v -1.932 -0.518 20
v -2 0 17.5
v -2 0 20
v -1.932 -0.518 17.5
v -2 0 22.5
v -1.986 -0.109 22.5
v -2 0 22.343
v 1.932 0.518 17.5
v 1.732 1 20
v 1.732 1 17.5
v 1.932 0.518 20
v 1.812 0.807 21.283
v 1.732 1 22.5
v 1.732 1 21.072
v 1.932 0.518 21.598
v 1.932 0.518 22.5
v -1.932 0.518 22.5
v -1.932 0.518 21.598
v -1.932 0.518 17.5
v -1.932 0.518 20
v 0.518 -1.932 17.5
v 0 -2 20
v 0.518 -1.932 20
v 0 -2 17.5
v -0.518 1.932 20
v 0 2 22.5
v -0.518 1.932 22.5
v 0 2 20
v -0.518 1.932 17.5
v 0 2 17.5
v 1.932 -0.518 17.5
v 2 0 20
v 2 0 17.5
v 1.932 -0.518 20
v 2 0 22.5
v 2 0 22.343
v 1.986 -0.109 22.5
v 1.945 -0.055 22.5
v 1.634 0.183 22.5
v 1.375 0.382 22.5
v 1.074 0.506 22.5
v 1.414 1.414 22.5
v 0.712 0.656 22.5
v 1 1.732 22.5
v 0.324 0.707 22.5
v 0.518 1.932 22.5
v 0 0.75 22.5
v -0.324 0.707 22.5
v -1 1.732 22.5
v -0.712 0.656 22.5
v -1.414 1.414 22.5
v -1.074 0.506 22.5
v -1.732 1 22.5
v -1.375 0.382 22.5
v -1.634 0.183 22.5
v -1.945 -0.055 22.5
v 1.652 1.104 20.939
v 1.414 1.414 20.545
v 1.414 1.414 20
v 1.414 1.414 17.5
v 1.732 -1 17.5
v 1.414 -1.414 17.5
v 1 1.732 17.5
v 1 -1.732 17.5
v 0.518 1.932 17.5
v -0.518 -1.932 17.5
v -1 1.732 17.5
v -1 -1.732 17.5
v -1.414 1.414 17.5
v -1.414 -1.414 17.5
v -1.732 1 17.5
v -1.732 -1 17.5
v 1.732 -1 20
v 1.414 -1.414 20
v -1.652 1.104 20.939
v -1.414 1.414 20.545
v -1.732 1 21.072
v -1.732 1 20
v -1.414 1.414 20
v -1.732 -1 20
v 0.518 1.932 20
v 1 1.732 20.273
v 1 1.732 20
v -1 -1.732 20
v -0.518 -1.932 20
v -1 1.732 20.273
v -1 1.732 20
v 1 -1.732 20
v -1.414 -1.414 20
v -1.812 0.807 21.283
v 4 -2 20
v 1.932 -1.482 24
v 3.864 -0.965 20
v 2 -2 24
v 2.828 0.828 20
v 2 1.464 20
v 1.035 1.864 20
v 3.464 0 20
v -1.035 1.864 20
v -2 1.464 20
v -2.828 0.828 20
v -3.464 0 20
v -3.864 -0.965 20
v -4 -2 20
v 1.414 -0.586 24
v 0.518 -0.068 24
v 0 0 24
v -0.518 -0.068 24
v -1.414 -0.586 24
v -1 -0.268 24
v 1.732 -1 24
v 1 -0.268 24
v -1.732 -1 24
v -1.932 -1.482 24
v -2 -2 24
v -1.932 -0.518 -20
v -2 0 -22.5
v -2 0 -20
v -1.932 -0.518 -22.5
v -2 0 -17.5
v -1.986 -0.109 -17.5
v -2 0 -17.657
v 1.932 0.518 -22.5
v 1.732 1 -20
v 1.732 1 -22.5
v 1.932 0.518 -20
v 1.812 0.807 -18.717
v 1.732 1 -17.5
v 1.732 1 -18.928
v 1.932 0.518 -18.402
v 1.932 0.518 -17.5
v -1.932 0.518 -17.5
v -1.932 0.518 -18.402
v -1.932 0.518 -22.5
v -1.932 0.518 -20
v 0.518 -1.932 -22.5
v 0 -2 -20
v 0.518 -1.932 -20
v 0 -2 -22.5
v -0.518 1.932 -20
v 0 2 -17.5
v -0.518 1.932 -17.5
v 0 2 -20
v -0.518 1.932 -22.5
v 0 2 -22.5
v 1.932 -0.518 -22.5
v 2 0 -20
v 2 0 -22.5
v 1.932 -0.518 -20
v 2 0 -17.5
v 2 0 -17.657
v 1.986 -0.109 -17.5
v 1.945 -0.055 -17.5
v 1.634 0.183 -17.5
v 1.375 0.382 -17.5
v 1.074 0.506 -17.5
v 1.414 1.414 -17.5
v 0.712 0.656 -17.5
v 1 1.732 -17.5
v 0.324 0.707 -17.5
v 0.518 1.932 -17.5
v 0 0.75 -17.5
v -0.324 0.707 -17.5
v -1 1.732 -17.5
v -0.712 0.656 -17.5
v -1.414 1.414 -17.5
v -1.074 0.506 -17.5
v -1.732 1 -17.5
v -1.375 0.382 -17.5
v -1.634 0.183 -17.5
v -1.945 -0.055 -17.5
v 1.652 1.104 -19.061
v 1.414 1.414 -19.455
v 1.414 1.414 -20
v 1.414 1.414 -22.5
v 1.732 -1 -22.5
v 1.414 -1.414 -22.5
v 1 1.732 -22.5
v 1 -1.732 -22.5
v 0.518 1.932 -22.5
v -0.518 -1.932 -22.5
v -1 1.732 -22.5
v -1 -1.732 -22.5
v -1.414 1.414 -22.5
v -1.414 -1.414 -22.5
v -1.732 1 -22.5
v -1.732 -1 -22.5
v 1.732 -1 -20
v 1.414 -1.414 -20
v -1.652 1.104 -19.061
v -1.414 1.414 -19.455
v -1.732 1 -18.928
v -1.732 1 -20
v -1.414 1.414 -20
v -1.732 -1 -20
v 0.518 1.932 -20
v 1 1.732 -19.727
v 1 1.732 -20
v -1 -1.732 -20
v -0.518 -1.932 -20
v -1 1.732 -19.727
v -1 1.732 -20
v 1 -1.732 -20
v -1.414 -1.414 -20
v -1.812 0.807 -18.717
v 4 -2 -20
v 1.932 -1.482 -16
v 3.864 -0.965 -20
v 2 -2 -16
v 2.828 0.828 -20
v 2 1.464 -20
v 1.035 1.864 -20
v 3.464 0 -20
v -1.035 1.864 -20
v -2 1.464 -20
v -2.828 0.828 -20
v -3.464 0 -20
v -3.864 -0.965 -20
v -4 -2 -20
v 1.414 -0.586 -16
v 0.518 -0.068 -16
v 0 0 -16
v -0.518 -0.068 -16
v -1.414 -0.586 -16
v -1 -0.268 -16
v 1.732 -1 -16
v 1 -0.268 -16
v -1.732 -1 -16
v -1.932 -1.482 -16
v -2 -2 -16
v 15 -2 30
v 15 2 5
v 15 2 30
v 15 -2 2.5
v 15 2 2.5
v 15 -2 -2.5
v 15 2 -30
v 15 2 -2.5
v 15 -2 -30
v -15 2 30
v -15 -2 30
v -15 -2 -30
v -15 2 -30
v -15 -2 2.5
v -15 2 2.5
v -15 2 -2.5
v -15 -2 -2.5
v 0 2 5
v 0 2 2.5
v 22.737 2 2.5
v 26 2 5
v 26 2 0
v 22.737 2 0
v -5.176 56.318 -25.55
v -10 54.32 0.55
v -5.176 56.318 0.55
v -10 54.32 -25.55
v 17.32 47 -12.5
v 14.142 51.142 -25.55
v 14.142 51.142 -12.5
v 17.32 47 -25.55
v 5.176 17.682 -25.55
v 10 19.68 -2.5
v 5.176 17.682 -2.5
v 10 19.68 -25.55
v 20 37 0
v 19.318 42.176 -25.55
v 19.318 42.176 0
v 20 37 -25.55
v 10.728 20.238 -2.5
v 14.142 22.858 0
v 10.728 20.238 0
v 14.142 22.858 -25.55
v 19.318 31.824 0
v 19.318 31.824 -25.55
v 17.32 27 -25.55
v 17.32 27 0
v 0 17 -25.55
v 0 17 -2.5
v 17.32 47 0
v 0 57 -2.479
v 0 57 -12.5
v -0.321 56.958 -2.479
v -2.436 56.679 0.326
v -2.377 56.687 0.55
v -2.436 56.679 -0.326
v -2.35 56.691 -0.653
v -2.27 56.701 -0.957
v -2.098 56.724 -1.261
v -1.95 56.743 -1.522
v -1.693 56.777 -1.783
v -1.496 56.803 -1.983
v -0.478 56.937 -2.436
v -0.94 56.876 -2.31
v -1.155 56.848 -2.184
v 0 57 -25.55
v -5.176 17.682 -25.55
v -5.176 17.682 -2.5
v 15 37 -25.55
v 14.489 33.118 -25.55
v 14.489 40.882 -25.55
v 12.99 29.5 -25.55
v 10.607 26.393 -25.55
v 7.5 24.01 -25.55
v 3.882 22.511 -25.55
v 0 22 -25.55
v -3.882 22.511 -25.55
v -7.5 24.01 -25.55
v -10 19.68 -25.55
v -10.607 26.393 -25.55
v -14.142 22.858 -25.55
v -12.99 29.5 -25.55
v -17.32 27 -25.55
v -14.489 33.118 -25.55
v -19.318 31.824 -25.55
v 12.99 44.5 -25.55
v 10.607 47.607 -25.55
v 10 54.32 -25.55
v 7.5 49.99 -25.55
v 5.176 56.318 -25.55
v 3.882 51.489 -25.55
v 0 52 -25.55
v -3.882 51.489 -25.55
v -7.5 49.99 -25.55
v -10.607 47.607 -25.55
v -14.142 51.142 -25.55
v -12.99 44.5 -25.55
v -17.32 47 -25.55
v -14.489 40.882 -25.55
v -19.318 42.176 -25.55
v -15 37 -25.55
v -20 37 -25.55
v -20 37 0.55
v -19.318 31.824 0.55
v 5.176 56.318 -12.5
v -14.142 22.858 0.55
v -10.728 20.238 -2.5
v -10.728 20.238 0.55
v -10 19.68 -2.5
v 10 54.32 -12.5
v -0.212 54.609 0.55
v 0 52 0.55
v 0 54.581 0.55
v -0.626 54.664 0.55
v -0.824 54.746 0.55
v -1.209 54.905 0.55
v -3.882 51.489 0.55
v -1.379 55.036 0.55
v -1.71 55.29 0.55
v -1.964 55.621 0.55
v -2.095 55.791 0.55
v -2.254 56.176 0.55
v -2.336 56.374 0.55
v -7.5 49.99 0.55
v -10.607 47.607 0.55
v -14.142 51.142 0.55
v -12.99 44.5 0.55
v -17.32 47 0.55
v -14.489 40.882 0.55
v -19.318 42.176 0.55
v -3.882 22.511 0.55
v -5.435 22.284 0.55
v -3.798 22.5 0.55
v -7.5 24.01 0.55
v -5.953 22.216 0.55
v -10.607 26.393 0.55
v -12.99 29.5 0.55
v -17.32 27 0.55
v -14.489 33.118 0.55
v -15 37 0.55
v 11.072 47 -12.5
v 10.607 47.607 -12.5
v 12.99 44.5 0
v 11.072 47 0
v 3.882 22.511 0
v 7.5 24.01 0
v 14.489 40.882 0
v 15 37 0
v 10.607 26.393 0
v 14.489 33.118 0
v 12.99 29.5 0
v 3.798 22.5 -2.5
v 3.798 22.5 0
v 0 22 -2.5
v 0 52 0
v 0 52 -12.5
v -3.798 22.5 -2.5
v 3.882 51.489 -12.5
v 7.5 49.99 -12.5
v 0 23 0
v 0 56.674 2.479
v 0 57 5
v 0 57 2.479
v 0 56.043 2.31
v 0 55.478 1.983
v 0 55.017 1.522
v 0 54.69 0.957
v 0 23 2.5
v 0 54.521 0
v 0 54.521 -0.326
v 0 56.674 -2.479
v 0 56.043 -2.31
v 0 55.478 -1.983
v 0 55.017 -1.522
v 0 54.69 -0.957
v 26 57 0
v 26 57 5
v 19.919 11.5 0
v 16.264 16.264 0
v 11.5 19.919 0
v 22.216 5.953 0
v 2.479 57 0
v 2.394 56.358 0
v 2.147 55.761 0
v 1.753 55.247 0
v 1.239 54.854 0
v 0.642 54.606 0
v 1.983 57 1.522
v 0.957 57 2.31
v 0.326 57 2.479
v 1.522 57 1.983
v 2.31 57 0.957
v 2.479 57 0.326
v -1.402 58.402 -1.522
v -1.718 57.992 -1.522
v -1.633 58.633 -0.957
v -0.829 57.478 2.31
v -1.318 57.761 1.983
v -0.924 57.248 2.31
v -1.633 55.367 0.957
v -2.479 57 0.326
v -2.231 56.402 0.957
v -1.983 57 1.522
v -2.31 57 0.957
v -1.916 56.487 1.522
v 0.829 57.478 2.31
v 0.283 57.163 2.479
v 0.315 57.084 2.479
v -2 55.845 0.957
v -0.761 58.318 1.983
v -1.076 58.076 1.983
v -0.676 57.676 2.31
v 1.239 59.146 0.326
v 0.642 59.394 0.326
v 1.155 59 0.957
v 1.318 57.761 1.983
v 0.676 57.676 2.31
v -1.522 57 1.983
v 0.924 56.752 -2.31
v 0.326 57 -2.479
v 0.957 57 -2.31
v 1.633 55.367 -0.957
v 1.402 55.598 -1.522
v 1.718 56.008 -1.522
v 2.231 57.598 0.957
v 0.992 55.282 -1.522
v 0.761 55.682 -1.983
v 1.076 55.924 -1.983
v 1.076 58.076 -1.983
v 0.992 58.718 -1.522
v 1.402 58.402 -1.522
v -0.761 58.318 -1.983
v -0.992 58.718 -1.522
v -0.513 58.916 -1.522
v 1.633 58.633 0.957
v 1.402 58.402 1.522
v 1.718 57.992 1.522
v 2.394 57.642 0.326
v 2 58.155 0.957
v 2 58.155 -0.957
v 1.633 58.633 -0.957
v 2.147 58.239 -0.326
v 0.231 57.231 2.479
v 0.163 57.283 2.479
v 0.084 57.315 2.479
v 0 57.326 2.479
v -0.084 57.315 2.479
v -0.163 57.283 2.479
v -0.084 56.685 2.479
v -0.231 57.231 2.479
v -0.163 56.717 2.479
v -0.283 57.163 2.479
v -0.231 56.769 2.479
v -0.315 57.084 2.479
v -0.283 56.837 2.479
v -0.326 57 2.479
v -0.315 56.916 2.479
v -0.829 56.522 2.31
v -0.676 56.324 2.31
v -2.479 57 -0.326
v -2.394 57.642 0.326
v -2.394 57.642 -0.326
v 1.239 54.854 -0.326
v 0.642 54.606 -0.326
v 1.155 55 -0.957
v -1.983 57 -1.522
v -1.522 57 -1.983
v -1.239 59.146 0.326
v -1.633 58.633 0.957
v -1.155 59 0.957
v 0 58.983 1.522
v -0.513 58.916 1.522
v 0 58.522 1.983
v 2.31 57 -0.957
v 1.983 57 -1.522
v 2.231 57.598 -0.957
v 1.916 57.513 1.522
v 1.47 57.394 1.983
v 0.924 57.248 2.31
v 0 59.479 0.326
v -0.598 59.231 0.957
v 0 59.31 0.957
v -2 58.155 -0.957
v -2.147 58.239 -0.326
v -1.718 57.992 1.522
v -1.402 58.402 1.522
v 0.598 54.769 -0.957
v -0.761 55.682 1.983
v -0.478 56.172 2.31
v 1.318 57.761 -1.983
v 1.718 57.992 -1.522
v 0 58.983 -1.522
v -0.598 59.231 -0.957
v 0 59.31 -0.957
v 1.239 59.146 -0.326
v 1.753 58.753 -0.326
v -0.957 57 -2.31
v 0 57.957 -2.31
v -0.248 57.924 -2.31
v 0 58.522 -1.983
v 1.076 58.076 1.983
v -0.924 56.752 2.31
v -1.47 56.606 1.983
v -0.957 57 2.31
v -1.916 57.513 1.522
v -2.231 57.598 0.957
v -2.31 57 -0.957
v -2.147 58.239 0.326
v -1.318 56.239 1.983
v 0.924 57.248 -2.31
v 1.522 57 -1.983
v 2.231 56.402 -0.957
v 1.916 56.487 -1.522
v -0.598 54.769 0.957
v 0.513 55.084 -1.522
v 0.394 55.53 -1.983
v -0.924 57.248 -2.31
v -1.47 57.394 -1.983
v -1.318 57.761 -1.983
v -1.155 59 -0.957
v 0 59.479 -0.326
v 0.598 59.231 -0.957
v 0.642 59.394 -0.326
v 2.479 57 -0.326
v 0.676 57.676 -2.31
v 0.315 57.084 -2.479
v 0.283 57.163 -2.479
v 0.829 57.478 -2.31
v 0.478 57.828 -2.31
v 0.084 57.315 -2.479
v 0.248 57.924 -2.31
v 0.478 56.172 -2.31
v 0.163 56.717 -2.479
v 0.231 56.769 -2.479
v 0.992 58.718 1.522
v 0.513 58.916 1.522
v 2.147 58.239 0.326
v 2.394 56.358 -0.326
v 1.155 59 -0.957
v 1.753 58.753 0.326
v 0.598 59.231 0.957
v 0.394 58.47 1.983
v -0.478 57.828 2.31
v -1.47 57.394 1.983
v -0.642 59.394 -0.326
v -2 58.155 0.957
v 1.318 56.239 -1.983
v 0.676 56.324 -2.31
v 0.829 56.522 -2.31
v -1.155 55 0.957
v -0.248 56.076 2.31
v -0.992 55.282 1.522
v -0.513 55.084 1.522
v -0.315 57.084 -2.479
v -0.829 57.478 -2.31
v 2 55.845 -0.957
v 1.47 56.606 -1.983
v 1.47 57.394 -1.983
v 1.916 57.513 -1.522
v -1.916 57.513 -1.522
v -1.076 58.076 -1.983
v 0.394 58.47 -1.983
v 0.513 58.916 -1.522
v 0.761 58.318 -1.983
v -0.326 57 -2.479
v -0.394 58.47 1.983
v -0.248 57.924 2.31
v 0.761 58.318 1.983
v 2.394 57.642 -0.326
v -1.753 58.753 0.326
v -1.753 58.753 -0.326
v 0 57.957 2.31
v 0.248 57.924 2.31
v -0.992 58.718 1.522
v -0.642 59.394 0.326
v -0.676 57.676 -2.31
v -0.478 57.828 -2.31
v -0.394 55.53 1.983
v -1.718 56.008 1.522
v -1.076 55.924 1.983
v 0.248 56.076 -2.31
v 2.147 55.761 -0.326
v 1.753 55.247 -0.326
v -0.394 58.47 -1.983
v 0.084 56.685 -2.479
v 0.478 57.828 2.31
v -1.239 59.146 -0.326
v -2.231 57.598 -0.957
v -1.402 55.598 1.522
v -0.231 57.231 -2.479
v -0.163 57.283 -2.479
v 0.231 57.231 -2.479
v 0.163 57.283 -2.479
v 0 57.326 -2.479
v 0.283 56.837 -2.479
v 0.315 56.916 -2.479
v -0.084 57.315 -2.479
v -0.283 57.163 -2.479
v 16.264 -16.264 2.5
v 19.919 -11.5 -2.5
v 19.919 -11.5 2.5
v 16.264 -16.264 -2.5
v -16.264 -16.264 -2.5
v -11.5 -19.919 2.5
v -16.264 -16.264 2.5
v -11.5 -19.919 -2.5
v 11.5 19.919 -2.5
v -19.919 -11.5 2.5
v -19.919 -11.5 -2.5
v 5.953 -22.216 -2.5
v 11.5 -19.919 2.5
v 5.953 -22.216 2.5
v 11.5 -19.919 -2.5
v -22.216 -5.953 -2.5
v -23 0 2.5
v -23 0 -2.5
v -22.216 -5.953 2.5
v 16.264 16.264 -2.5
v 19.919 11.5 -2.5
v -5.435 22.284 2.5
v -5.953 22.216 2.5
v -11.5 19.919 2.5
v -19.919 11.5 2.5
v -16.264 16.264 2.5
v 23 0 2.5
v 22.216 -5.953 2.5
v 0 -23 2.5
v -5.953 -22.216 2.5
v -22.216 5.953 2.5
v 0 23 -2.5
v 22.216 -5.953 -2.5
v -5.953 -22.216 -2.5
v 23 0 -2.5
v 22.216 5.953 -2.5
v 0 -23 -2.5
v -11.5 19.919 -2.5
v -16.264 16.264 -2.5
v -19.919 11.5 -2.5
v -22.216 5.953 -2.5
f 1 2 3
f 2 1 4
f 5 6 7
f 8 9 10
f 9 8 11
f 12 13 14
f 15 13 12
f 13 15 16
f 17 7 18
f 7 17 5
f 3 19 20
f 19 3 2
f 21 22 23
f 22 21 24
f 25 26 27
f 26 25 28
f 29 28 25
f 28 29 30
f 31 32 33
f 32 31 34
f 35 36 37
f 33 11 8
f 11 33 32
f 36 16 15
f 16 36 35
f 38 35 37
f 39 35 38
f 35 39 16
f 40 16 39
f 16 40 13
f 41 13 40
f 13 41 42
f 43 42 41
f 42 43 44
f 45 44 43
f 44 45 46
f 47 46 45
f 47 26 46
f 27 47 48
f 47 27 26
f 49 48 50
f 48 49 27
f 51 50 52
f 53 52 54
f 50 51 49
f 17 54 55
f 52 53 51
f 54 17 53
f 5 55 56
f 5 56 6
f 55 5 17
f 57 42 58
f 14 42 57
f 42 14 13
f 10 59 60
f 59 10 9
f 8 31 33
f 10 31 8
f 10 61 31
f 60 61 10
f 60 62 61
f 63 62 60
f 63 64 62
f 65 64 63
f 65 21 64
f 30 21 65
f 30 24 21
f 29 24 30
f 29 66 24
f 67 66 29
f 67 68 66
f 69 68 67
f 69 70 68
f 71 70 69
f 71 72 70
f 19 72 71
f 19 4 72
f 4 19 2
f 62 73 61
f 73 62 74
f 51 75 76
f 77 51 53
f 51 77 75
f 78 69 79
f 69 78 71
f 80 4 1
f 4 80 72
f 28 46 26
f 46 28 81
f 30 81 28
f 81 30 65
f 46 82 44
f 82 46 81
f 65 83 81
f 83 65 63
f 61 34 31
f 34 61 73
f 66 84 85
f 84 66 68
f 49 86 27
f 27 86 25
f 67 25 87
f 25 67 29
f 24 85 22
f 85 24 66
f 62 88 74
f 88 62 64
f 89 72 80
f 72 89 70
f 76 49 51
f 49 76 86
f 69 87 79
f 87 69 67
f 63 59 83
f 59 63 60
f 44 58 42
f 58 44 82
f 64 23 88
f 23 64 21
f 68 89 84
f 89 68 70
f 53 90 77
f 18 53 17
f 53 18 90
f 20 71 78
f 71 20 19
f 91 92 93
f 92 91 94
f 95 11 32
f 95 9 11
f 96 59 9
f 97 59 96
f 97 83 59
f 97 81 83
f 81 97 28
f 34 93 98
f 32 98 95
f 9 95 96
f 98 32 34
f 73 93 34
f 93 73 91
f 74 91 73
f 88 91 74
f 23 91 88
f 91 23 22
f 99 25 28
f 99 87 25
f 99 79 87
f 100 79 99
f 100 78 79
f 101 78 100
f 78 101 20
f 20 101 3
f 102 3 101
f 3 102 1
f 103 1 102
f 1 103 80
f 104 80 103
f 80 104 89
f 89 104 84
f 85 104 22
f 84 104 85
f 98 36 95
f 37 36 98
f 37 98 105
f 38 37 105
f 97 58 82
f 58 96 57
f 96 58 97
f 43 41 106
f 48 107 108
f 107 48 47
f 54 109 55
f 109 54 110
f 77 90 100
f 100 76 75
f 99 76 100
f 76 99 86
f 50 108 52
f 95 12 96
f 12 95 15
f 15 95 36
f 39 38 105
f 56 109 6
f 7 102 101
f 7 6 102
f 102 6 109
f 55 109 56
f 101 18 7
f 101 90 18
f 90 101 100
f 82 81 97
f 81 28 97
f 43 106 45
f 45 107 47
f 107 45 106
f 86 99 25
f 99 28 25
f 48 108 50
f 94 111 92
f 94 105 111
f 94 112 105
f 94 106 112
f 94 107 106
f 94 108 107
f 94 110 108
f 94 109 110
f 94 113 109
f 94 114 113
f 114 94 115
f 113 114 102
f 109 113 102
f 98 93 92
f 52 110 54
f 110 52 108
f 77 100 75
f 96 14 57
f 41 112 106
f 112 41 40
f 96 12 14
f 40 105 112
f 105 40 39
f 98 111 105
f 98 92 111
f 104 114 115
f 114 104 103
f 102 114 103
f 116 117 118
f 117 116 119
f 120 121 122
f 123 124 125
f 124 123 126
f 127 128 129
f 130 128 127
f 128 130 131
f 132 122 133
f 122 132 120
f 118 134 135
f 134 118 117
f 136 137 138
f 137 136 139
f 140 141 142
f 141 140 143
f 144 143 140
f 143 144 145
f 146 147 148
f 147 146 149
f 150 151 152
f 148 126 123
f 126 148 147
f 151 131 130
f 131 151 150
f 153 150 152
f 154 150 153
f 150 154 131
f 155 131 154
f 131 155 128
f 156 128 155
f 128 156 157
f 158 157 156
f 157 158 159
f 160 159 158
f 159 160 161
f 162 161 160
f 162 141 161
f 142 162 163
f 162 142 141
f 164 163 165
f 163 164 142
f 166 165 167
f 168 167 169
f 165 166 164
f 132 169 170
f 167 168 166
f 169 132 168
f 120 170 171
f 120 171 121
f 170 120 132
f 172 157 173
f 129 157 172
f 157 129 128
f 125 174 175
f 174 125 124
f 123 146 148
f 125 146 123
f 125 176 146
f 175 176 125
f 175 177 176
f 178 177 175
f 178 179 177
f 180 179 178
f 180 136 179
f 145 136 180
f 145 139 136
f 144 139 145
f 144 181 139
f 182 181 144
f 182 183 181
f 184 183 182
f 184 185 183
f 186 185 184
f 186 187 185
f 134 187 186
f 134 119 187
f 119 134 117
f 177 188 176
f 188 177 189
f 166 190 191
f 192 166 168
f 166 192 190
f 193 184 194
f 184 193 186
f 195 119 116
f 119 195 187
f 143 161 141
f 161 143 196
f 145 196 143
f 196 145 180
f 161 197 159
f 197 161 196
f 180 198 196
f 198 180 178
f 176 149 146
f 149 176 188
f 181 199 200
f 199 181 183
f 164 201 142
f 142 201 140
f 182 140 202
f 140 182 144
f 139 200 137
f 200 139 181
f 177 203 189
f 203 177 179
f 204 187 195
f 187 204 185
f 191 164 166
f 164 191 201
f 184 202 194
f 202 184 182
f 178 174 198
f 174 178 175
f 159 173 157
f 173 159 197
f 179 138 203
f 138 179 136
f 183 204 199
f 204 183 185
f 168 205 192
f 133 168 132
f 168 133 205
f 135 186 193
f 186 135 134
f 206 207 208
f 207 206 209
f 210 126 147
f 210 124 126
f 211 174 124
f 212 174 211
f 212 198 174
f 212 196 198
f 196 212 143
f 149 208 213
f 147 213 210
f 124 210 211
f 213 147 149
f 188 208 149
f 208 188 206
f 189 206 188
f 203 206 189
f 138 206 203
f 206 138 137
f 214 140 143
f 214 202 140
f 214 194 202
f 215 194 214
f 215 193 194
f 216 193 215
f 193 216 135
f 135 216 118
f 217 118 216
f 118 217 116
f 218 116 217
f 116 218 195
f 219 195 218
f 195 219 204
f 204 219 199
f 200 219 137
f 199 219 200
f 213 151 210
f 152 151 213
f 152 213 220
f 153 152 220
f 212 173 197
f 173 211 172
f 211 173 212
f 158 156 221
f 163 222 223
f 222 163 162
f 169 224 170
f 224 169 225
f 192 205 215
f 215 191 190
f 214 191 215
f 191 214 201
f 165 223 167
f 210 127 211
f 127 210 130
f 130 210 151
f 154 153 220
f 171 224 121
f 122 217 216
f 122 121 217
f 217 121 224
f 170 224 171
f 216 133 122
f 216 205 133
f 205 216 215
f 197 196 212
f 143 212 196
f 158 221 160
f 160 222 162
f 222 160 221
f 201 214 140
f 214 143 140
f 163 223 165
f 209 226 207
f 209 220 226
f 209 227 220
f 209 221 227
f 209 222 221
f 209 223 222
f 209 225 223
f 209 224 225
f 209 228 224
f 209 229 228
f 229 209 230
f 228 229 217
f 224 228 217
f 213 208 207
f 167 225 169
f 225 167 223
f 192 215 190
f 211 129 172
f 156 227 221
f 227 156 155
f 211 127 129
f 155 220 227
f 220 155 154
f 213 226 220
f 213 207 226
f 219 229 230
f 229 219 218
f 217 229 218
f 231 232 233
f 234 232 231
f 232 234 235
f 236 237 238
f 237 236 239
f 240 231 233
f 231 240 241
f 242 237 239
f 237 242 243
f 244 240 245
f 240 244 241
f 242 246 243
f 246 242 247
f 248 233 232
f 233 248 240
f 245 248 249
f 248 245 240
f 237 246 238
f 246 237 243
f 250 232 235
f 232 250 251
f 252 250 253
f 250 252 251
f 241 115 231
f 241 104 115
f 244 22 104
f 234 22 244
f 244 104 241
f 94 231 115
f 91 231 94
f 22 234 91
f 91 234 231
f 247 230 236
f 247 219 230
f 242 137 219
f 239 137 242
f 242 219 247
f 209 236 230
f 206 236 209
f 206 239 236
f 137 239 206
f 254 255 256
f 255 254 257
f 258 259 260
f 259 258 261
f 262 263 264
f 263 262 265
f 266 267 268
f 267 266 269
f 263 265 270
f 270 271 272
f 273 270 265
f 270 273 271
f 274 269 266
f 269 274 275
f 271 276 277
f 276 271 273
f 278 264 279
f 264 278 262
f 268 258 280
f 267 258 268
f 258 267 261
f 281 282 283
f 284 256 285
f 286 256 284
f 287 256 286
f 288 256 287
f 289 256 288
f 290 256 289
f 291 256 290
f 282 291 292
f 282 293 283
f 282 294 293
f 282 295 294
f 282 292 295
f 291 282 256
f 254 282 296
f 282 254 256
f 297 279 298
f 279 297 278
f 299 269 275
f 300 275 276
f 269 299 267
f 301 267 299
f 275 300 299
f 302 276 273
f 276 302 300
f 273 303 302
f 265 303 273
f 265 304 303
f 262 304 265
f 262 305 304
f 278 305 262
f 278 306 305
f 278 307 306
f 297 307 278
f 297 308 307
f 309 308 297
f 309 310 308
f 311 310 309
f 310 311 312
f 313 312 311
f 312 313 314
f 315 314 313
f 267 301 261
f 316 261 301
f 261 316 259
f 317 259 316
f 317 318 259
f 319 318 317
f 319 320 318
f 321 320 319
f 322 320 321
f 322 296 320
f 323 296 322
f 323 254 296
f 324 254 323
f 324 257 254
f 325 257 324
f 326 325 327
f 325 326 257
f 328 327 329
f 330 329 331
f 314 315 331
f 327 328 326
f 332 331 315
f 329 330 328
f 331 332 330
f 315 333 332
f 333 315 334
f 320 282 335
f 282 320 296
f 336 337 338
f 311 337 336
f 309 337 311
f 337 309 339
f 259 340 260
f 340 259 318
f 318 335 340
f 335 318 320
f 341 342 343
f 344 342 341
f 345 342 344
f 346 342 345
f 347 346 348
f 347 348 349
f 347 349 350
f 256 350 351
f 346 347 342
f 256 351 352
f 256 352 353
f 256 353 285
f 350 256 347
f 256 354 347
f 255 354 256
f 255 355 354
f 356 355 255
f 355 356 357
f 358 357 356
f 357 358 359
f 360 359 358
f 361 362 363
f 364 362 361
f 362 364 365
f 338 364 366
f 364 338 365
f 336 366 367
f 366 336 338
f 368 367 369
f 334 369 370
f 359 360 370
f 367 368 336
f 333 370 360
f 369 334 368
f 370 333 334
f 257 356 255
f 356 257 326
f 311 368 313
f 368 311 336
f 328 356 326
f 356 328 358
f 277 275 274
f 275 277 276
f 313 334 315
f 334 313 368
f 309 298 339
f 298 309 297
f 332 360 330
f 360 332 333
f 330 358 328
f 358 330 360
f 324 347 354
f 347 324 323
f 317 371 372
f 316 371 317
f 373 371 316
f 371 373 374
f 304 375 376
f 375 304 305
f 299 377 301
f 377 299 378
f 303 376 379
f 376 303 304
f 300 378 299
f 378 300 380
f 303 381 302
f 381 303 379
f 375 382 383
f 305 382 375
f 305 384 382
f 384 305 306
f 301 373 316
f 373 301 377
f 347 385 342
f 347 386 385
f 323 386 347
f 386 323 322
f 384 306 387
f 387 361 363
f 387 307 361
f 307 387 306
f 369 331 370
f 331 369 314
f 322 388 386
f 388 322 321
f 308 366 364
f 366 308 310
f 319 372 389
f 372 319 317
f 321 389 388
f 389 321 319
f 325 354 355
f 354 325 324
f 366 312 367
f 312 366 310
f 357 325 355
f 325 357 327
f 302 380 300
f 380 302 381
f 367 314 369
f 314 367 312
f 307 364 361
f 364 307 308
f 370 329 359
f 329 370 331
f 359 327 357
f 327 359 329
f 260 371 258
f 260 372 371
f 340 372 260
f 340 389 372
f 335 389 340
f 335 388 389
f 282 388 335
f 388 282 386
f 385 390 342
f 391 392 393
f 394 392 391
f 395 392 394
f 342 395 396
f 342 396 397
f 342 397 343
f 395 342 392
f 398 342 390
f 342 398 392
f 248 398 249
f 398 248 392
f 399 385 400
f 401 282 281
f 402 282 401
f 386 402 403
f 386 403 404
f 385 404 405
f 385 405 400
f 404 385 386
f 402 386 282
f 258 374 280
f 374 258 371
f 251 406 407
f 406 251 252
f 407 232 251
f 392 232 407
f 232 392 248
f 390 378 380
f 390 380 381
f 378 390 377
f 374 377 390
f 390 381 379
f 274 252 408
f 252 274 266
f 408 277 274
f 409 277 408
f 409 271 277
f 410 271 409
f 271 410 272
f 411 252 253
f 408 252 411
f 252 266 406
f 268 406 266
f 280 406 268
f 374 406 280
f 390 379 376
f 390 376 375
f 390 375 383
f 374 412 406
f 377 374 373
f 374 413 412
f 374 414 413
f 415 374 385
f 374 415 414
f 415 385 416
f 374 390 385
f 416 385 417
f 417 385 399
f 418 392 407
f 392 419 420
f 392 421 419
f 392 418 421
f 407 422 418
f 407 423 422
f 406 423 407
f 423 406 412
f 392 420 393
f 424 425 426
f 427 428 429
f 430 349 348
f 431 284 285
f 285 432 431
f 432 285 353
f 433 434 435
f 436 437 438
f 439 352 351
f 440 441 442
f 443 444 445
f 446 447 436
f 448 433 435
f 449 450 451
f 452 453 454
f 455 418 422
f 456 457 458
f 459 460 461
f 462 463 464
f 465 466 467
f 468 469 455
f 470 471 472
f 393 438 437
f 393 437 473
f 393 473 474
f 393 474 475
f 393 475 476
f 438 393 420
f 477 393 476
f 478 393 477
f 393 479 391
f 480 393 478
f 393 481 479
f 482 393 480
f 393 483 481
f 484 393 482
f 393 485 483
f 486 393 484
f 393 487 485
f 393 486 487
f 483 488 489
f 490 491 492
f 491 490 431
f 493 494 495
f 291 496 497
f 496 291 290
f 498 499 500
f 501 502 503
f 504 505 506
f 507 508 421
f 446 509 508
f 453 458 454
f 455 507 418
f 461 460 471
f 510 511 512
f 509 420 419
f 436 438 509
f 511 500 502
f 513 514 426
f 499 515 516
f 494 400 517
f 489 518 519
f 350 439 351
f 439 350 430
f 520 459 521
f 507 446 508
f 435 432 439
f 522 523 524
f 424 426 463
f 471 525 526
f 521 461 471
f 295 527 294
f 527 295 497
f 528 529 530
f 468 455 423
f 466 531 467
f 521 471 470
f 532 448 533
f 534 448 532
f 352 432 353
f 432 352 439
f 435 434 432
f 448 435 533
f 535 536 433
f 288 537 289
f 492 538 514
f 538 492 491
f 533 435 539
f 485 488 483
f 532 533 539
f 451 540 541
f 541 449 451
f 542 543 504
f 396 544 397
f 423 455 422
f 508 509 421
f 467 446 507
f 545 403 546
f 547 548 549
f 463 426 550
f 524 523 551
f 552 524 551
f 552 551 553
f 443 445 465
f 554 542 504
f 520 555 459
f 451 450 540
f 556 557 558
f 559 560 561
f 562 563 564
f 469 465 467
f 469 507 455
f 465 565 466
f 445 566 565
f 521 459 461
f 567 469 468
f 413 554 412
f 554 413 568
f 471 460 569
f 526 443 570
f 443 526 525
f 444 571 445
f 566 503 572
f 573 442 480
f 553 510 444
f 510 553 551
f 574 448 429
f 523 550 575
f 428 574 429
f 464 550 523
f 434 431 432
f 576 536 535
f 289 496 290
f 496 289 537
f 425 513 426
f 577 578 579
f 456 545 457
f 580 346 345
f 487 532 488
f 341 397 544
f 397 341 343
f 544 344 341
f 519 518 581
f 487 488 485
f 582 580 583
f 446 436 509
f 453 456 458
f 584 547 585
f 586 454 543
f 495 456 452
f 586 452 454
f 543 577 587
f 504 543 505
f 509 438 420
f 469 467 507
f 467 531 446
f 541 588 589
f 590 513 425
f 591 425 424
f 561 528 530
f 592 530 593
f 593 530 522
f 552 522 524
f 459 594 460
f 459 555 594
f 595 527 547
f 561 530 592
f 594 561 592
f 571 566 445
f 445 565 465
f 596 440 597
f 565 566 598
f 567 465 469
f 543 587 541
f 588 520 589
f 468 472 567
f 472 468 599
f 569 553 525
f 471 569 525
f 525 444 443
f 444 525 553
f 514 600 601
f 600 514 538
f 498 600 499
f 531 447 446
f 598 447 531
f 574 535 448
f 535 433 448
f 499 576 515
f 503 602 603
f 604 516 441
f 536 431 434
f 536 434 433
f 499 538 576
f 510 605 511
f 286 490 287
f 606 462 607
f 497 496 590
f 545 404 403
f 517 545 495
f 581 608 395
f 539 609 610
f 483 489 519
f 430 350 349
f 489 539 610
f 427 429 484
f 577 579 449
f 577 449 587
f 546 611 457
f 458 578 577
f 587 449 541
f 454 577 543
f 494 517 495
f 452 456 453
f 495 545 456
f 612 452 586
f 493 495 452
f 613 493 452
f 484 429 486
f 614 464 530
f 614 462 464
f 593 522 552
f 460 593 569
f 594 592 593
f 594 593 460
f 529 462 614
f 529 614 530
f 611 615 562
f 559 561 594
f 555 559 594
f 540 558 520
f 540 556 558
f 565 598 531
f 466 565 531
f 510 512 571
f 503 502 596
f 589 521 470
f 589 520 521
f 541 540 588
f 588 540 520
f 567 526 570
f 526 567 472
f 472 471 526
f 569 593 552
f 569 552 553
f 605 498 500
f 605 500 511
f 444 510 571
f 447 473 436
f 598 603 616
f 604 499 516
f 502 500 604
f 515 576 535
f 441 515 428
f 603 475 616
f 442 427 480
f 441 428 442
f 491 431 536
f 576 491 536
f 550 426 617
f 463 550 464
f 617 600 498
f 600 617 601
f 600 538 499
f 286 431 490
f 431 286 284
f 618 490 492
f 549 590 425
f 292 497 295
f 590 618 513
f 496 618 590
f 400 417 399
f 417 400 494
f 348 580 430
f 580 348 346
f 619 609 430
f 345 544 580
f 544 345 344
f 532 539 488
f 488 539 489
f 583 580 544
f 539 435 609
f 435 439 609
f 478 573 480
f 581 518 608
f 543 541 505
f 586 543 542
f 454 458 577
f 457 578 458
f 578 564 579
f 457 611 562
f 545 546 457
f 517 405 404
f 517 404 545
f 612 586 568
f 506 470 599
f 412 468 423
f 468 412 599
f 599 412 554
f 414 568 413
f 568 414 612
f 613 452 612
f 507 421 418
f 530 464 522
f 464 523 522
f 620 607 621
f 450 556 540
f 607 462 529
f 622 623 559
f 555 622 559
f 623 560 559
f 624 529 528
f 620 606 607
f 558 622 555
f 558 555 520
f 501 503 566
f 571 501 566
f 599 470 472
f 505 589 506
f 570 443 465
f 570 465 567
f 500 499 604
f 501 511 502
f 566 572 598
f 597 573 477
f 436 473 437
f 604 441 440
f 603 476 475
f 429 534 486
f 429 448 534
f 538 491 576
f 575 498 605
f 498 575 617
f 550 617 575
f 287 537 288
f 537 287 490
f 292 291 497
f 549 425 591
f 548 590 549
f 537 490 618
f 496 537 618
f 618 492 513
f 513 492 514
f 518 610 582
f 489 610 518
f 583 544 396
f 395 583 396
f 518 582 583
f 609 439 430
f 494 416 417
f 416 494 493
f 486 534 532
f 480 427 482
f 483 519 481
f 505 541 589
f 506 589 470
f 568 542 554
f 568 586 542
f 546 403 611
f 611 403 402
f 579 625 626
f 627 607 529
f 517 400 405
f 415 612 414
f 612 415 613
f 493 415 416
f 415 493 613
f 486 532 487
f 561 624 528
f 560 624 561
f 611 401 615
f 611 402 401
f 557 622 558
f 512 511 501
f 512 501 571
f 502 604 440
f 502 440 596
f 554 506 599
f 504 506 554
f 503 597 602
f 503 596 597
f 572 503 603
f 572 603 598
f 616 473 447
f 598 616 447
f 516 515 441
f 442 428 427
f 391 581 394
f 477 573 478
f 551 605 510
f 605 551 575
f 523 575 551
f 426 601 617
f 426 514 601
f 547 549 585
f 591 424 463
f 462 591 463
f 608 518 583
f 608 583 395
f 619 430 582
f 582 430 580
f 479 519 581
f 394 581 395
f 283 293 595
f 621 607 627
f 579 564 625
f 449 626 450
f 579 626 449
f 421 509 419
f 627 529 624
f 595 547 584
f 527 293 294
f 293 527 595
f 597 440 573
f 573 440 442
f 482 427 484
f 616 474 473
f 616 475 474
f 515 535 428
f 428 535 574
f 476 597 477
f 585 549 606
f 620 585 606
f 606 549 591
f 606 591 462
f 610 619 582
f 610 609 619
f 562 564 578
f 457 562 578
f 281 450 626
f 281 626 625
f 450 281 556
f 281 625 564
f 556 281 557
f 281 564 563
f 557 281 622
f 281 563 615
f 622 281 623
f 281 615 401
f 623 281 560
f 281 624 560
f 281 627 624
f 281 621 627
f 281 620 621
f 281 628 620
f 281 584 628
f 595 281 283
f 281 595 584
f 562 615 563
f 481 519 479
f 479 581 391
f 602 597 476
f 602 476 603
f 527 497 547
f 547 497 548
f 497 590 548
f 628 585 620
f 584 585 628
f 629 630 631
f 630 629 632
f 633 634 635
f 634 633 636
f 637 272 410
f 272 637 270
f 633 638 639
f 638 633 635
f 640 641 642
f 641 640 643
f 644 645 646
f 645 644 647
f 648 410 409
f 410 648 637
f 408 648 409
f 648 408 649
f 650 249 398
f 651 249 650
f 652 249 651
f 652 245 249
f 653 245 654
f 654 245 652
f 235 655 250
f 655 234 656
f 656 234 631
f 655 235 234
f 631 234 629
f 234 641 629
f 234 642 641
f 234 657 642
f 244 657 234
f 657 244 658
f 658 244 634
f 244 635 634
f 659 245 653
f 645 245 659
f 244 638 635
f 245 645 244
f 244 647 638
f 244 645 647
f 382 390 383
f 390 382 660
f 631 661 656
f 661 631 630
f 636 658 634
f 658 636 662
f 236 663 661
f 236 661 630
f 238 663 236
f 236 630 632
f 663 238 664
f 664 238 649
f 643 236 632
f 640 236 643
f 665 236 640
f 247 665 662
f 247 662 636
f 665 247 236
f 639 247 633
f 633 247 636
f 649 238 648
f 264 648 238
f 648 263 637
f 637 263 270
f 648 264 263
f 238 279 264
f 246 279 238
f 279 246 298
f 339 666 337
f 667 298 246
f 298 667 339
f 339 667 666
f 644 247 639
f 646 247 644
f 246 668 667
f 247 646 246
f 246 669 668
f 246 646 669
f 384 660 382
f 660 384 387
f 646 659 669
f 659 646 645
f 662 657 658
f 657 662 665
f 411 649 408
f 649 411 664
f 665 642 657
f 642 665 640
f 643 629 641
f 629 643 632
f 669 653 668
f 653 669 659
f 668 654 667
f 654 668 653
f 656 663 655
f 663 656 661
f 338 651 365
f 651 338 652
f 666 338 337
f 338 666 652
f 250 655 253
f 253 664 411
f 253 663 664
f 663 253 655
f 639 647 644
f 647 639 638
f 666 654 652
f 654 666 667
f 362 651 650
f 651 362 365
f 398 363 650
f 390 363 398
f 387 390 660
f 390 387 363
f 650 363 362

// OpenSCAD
// Global parameters for quality to ensure smooth curves for 3D printing.
$fn=24;

// Dimensions for the wall hook.
// These values are chosen to create a robust hook suitable for holding 5kg,
// while adhering to the minimum wall thickness rule.

// Back Plate dimensions (the part that mounts to the wall)
back_plate_width = 30; // mm (Width along the X-axis)
back_plate_height = 60; // mm (Height along the Z-axis)
back_plate_thickness = 4; // mm (Thickness along the Y-axis. Minimum 2mm rule -> using 4mm for strength)

// Hook Arm dimensions (the part that protrudes and holds items)
hook_arm_width = 26; // mm (Width of the arm, slightly less than back plate width for aesthetics)
hook_arm_thickness = 5; // mm (Thickness of the arm. Minimum 2mm rule -> using 5mm for strength)
hook_arm_straight_length = 35; // mm (Horizontal length of the straight part of the arm from the back plate)
hook_inner_radius = 15; // mm (Inner radius of the hook's curl)
hook_outer_radius = hook_inner_radius + hook_arm_thickness; // Calculated outer radius of the hook's curl
hook_arm_total_projection = hook_arm_straight_length + hook_outer_radius; // Total horizontal distance the hook projects from the wall

// Screw Hole parameters
screw_diameter = 4; // mm (Diameter for the screw body, suitable for M4 screws)
countersink_top_diameter = 8; // mm (Top diameter of the countersink cone)
countersink_depth = 4; // mm (Depth of the countersink cone)
screw_hole_offset_z = 20; // mm (Vertical distance from the center of the back plate to each screw hole)

// Fillet/Blend parameters
fillet_blend_radius = 8; // mm (Radius for the blending fillet where the arm joins the back plate)

// Main module for the entire wall hook structure.
// The back plate is centered on X and Z at (0,0,0), with the hook extending in the positive Y direction.
module wall_hook() {
    // Back Plate: The solid rectangular base for wall mounting.
    // It's centered on the X and Z axes. Its back face is at Y = -back_plate_thickness/2.
    // The front face is at Y = back_plate_thickness/2.
    difference() {
        cube([back_plate_width, back_plate_thickness, back_plate_height], center=true);

        // Screw Holes: Cut into the back plate for mounting.
        // Two holes are placed symmetrically above and below the center along the Z-axis.
        translate([0, 0, screw_hole_offset_z])
        screw_hole_with_countersink();
        translate([0, 0, -screw_hole_offset_z])
        screw_hole_with_countersink();
    }

    // Hook Arm Structure: This union defines the protruding part of the hook.
    // It is positioned to start from the front face of the back plate (Y = back_plate_thickness/2).
    translate([0, back_plate_thickness / 2, 0])
    union() {
        // Main arm block: The straight rectangular section extending from the back plate.
        // Centered on the X and Z axes relative to its own starting point (Y=0).
        cube([hook_arm_width, hook_arm_total_projection, hook_arm_thickness], center = [true, false, true]);

        // Rounded end of the arm tip: A sphere creates a smooth, non-sharp end for the hook.
        // Positioned at the very end of the main arm block.
        translate([0, hook_arm_total_projection, 0])
        sphere(r = hook_arm_thickness/2);

        // Reinforcement fillet at the base of the arm:
        // A 'hull' operation creates a smooth, strong transition between the arm and the back plate,
        // preventing sharp angles that could be weak points in FDM printing.
        hull() {
            // A cylinder defining the connection point at the very start of the arm.
            translate([0, 0, 0]) // At Y=0, Z=0 of the arm's local origin
            cylinder(h = hook_arm_thickness, d = hook_arm_width + 2*fillet_blend_radius, center = true);

            // A second cylinder positioned slightly into the back plate for the hull blend.
            translate([0, -back_plate_thickness/2, 0]) // Halfway into the back plate along Y
            cylinder(h = hook_arm_thickness, d = back_plate_width + 2*fillet_blend_radius, center = true);
        }

        // Scoop out the underside of the hook to create the upward curl:
        // This 'difference' operation forms the functional part of the hook.
        // The operation is positioned at the start of the arm's curved section.
        translate([0, hook_arm_straight_length, hook_arm_thickness/2 - hook_inner_radius])
        difference() {
            // Outer cylinder: Defines the overall size of the material to be removed for the curl.
            cylinder(r = hook_outer_radius, h = hook_arm_width + 0.1, center = true); // Height along X

            // Inner cylinder: Defines the inner boundary of the hook's curve.
            cylinder(r = hook_inner_radius, h = hook_arm_width + 0.1, center = true);

            // Cutter cube: This cube removes the top half of the subtracted volume,
            // ensuring the scoop only removes material from the bottom/inner part of the arm,
            // forming an upward-curling hook.
            translate([0, hook_outer_radius/2, 0]) // Position the cutter to remove the positive Y half of the cylinders
            cube([hook_outer_radius*2 + 1, hook_outer_radius + 1, hook_arm_width + 1], center = [true, false, true]);
        }
    }
}

// Module for a screw hole with countersink.
// This module creates a through-hole with a conical countersink at the front surface.
module screw_hole_with_countersink() {
    union() {
        // Main cylindrical hole: Passes completely through the back plate.
        cylinder(d=screw_diameter, h=back_plate_thickness + 1, center=true);

        // Conical countersink: Drills into the back plate from its front face (positive Y direction).
        translate([0, back_plate_thickness/2 - countersink_depth, 0])
        cylinder(d1=countersink_top_diameter, d2=screw_diameter, h=countersink_depth, center=false);
    }
}

// Render the entire wall hook model for 3D printing.
wall_hook();
